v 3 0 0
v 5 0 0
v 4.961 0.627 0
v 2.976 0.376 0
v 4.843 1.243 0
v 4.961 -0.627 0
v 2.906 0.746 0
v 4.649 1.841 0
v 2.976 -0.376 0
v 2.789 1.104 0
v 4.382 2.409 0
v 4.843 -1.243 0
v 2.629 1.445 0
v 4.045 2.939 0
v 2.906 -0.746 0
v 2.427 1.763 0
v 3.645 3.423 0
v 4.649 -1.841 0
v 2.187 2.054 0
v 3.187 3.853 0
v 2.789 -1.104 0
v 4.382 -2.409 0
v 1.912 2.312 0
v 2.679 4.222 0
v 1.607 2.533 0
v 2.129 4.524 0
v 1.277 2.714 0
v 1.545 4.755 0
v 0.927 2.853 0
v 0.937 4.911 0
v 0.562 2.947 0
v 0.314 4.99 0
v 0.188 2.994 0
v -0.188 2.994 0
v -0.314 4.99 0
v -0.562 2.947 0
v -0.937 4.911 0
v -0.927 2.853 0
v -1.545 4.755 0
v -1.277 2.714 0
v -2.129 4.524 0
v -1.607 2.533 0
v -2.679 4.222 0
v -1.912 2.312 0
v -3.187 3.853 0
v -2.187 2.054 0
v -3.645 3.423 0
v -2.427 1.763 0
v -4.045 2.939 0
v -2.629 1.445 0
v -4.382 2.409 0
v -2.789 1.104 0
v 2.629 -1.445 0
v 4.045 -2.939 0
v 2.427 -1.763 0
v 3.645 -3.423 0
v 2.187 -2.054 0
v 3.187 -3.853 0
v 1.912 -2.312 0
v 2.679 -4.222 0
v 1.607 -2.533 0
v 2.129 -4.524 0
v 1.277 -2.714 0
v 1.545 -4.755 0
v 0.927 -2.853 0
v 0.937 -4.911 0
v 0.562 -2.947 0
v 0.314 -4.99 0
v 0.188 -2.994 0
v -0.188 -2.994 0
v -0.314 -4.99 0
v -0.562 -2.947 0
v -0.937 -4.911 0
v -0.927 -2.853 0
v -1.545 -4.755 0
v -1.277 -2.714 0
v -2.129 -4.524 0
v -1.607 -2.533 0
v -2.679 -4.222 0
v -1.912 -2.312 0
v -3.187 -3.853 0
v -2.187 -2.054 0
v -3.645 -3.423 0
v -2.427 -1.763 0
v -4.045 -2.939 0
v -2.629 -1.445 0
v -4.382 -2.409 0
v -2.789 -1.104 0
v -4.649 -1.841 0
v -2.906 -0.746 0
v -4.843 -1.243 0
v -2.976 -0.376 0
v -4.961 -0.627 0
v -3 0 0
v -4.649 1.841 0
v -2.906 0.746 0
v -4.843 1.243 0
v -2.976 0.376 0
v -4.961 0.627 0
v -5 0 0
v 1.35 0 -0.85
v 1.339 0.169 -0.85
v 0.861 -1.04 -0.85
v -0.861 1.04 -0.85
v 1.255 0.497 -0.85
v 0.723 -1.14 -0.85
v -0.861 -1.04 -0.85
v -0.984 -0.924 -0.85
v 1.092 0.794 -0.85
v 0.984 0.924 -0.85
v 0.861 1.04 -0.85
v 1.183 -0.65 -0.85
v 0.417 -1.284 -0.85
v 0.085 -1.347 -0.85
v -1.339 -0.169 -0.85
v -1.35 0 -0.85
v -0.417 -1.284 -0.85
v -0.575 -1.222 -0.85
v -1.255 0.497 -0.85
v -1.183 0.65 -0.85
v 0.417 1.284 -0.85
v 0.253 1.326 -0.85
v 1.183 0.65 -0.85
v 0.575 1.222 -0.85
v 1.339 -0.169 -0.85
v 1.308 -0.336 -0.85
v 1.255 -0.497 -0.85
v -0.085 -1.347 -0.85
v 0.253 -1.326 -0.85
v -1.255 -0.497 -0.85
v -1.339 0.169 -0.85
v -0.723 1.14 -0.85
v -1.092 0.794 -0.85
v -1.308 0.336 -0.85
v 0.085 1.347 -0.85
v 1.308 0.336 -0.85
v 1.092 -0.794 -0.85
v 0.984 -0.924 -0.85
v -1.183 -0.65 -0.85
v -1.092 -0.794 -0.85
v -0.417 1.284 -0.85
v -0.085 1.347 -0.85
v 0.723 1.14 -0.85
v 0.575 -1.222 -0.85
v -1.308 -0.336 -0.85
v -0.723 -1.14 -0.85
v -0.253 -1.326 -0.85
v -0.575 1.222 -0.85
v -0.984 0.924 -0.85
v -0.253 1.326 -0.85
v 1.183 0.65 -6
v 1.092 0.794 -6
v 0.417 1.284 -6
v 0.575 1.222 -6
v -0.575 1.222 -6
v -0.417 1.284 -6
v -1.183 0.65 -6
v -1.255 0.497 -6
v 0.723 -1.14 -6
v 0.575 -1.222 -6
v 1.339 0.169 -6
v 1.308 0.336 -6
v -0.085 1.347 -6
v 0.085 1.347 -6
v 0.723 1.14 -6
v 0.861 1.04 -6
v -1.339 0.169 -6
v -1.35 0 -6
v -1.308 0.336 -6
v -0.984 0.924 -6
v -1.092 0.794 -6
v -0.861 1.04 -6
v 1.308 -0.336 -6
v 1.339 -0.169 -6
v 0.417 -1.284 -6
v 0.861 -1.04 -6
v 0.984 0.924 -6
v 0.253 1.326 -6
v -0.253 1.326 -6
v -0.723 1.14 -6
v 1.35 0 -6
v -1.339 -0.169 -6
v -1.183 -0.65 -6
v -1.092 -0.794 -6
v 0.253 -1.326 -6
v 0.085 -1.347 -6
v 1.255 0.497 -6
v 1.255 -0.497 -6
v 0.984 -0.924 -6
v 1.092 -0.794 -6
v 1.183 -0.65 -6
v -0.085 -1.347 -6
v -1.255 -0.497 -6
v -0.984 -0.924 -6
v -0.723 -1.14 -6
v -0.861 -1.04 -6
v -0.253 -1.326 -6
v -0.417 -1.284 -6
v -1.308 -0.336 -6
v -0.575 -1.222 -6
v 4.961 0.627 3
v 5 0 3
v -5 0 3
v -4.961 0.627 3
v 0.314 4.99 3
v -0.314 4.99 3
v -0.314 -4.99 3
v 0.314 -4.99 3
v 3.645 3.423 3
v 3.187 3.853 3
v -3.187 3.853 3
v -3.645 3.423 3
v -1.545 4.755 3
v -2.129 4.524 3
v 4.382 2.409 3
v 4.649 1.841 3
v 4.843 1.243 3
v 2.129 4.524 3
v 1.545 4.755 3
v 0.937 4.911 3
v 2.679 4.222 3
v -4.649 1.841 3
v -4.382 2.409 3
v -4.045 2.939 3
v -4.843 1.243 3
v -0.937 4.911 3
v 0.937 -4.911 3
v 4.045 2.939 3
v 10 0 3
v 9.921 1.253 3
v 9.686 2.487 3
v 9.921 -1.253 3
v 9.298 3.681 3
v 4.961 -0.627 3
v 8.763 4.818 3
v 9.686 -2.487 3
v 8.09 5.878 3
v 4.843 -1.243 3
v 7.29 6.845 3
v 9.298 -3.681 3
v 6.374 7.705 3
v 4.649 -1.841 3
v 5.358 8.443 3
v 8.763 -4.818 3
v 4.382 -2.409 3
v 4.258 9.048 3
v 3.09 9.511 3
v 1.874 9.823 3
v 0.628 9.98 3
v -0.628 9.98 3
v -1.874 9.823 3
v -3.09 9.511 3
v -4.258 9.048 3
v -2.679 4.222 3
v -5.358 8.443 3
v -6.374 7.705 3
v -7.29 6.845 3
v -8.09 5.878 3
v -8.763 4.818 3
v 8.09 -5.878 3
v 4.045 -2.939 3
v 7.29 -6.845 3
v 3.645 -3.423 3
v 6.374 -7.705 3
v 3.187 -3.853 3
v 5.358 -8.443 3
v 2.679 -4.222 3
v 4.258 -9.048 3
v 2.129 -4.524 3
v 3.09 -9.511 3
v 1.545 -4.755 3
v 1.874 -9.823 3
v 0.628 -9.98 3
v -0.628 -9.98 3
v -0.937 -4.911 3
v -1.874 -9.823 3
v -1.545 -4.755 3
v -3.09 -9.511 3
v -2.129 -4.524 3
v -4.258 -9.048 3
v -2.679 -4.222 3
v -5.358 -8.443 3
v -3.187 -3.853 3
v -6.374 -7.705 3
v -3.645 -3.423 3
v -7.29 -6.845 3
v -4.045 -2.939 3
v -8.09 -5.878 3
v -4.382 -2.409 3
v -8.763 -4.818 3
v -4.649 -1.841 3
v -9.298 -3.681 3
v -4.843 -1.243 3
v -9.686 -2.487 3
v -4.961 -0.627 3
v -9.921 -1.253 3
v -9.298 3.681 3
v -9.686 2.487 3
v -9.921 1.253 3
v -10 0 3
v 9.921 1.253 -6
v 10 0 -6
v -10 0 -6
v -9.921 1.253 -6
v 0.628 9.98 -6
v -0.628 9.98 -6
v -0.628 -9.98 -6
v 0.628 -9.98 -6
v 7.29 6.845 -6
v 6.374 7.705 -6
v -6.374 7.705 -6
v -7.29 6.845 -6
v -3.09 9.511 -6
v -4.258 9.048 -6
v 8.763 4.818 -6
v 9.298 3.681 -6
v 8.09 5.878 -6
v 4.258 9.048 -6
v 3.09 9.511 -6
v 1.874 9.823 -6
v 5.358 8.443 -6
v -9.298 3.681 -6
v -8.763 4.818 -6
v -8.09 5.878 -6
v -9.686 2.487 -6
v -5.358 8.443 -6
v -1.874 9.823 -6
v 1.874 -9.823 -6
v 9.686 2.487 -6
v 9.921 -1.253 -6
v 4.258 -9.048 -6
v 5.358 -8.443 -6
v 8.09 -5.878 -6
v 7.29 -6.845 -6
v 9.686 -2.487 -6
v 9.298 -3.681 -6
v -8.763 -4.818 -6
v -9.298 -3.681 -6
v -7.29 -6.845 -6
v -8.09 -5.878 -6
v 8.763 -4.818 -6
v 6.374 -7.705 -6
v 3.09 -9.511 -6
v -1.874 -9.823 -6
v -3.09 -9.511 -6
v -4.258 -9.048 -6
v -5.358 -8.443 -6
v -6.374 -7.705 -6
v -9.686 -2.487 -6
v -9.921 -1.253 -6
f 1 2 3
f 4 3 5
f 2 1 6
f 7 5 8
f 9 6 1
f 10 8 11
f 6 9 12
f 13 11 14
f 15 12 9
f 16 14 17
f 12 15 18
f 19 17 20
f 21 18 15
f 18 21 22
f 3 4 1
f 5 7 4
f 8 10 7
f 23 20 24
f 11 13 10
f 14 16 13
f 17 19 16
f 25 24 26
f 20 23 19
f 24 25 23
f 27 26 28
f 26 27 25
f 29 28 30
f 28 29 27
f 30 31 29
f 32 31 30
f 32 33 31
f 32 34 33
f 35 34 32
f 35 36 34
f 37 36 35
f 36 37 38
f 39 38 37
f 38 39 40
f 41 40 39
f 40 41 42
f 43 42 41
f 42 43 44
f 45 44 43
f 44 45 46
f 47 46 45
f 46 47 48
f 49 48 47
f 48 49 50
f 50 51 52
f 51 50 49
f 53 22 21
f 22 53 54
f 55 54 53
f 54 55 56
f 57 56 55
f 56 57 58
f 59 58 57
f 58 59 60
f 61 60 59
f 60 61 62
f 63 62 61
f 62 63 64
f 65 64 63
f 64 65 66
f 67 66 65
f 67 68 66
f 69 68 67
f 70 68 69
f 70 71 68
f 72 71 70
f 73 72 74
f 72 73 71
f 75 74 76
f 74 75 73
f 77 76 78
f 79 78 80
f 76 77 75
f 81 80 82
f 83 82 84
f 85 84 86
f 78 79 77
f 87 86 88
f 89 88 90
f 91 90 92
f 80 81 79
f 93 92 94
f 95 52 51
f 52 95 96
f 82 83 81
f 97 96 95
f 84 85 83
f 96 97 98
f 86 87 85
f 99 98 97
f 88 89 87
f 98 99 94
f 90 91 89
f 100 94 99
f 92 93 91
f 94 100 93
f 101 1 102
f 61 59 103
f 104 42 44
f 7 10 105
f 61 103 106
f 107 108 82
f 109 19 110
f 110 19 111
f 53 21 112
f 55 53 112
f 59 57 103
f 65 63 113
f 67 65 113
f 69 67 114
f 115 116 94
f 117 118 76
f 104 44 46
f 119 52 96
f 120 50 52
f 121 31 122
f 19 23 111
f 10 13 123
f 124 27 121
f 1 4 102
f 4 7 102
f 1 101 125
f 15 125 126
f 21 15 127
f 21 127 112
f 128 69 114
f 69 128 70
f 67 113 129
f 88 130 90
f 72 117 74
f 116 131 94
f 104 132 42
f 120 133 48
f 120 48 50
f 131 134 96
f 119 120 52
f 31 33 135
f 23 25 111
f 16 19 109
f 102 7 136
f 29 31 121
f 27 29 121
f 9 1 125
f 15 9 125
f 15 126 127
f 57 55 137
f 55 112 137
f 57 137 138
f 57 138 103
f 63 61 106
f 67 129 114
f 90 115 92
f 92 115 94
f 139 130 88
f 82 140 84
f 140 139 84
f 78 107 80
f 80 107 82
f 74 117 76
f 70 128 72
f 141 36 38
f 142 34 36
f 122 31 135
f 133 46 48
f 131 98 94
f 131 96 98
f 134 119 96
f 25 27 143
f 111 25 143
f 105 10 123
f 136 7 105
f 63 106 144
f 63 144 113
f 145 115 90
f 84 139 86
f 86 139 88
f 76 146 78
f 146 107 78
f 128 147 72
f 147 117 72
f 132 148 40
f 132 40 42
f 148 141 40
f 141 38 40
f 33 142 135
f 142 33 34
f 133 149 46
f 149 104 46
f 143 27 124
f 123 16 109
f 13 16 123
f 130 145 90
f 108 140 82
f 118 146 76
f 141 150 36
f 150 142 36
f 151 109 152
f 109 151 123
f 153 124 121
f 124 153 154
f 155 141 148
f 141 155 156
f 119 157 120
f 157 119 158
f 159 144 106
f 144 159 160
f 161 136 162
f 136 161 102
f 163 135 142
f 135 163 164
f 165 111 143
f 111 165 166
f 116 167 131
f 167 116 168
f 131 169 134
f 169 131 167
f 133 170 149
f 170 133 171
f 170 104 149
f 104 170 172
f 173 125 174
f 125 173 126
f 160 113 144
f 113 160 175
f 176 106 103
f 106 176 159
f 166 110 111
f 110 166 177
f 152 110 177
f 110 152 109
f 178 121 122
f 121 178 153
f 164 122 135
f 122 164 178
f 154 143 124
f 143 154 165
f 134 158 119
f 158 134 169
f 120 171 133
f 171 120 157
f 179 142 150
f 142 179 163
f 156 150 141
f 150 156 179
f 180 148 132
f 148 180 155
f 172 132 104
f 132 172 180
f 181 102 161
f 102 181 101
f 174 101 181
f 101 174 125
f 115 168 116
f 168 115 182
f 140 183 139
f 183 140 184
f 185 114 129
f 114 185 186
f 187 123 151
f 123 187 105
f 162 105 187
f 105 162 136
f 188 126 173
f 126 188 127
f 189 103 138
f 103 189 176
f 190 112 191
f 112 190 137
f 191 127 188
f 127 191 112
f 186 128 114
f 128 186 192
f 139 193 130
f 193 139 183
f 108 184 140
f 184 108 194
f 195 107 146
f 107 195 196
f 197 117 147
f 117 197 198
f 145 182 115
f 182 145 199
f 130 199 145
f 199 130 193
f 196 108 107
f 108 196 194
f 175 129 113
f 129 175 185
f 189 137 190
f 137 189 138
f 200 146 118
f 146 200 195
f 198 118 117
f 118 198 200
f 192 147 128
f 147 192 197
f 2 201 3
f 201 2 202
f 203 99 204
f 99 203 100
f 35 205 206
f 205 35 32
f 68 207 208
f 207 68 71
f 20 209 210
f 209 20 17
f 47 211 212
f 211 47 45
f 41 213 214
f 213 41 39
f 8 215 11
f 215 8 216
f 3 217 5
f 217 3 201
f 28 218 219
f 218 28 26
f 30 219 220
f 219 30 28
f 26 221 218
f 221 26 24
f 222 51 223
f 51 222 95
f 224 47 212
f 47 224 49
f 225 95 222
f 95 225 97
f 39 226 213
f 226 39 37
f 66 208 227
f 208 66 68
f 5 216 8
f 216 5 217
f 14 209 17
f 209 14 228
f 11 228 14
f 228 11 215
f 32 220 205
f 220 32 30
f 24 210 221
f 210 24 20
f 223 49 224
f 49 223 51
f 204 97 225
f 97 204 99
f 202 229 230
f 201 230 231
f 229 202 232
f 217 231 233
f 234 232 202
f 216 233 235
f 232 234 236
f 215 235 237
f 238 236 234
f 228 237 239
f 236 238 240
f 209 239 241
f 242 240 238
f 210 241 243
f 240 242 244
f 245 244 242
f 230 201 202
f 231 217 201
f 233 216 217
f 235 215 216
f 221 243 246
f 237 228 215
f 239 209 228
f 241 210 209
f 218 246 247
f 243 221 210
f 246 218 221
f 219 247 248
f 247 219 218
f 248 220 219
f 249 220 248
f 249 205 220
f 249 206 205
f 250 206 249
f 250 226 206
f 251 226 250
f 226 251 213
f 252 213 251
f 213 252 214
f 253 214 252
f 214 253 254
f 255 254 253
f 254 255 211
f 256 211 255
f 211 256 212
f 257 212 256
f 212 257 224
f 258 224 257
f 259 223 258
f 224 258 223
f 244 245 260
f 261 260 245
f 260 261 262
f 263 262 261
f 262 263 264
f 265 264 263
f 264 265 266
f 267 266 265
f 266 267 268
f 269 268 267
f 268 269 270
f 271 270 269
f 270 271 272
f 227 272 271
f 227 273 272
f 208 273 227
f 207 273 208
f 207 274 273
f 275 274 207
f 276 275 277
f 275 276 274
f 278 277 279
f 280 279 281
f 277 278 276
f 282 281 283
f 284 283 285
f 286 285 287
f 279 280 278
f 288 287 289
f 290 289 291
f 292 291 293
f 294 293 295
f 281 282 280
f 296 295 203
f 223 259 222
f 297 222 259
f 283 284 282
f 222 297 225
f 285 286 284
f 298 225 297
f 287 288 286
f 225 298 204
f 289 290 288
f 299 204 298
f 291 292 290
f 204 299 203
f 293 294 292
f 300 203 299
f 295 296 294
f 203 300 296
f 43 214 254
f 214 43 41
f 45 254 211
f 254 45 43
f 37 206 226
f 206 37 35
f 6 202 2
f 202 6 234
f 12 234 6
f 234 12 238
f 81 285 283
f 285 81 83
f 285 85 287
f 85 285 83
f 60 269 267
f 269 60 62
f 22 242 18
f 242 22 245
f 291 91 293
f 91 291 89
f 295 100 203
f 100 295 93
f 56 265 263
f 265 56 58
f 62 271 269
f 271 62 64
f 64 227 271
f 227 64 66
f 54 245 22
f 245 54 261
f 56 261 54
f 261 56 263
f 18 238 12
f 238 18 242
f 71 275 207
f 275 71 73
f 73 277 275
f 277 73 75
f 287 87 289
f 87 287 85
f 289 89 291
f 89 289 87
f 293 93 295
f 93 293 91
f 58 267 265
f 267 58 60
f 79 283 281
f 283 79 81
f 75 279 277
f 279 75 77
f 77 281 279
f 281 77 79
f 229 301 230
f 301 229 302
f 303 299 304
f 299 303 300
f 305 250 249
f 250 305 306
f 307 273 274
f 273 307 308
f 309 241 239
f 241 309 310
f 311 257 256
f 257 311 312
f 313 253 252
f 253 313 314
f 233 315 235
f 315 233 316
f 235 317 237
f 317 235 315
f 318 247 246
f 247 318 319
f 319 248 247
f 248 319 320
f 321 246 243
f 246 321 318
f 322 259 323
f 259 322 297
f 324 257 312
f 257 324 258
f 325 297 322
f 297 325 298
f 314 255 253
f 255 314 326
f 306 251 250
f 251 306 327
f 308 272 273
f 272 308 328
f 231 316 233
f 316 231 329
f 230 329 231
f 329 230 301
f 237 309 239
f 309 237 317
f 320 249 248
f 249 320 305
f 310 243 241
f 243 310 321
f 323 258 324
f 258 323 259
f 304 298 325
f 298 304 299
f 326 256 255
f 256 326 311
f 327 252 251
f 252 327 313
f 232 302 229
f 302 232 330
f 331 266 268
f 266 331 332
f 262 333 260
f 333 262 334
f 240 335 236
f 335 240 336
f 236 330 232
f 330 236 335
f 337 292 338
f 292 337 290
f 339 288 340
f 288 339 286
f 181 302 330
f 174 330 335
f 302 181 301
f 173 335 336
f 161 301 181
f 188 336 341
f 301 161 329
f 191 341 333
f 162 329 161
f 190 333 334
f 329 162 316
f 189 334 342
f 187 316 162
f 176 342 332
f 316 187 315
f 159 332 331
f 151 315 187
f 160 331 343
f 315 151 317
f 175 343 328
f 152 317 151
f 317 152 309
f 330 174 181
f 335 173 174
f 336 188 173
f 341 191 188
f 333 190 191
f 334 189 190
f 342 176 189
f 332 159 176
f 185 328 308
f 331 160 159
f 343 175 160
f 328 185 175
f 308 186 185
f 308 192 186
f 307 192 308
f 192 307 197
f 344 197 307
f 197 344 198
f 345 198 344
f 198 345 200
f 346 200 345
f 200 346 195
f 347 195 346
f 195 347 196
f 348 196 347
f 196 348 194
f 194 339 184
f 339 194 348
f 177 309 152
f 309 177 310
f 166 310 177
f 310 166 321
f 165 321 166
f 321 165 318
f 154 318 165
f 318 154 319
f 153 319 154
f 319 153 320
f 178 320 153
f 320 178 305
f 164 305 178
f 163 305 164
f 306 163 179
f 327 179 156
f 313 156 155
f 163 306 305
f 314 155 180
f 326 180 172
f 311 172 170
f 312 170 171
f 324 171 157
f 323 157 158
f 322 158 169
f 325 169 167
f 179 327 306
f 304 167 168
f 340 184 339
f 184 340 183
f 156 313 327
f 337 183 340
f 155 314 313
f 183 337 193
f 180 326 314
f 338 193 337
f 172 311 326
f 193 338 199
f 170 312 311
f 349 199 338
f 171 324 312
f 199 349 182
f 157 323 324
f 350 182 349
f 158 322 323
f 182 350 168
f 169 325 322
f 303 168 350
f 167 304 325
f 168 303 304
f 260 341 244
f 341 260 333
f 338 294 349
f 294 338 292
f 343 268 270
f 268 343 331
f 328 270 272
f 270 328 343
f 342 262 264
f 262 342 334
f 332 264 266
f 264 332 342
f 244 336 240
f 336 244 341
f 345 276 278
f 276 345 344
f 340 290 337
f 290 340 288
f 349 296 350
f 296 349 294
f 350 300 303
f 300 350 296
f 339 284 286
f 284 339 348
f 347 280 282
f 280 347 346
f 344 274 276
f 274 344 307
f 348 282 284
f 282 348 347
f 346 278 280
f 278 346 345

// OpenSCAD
$fn = 50;

difference() {
	union() {
		translate(v = [0, 0, -6.0]) {
			cylinder(h = 9, r = 10.0);
		}
	}
	union() {
		translate(v = [0, 0, 0]) {
			rotate(a = [0, 0, 0]) {
				difference() {
					union() {
						translate(v = [0, 0, -9.0]) {
							cylinder(h = 9, r = 1.0);
						}
						translate(v = [0, 0, -0.85]) {
							cylinder(h = 0.85, r1 = 1.35, r2 = 3.0);
						}
						translate(v = [0, 0, -9.0]) {
							cylinder(h = 9, r = 1.35);
						}
						translate(v = [0, 0, -9.0]) {
							cylinder(h = 9, r = 1.0);
						}
					}
					union();
				}
			}
		}
		#cylinder(h = 3, r = 5.0);
	}
}
